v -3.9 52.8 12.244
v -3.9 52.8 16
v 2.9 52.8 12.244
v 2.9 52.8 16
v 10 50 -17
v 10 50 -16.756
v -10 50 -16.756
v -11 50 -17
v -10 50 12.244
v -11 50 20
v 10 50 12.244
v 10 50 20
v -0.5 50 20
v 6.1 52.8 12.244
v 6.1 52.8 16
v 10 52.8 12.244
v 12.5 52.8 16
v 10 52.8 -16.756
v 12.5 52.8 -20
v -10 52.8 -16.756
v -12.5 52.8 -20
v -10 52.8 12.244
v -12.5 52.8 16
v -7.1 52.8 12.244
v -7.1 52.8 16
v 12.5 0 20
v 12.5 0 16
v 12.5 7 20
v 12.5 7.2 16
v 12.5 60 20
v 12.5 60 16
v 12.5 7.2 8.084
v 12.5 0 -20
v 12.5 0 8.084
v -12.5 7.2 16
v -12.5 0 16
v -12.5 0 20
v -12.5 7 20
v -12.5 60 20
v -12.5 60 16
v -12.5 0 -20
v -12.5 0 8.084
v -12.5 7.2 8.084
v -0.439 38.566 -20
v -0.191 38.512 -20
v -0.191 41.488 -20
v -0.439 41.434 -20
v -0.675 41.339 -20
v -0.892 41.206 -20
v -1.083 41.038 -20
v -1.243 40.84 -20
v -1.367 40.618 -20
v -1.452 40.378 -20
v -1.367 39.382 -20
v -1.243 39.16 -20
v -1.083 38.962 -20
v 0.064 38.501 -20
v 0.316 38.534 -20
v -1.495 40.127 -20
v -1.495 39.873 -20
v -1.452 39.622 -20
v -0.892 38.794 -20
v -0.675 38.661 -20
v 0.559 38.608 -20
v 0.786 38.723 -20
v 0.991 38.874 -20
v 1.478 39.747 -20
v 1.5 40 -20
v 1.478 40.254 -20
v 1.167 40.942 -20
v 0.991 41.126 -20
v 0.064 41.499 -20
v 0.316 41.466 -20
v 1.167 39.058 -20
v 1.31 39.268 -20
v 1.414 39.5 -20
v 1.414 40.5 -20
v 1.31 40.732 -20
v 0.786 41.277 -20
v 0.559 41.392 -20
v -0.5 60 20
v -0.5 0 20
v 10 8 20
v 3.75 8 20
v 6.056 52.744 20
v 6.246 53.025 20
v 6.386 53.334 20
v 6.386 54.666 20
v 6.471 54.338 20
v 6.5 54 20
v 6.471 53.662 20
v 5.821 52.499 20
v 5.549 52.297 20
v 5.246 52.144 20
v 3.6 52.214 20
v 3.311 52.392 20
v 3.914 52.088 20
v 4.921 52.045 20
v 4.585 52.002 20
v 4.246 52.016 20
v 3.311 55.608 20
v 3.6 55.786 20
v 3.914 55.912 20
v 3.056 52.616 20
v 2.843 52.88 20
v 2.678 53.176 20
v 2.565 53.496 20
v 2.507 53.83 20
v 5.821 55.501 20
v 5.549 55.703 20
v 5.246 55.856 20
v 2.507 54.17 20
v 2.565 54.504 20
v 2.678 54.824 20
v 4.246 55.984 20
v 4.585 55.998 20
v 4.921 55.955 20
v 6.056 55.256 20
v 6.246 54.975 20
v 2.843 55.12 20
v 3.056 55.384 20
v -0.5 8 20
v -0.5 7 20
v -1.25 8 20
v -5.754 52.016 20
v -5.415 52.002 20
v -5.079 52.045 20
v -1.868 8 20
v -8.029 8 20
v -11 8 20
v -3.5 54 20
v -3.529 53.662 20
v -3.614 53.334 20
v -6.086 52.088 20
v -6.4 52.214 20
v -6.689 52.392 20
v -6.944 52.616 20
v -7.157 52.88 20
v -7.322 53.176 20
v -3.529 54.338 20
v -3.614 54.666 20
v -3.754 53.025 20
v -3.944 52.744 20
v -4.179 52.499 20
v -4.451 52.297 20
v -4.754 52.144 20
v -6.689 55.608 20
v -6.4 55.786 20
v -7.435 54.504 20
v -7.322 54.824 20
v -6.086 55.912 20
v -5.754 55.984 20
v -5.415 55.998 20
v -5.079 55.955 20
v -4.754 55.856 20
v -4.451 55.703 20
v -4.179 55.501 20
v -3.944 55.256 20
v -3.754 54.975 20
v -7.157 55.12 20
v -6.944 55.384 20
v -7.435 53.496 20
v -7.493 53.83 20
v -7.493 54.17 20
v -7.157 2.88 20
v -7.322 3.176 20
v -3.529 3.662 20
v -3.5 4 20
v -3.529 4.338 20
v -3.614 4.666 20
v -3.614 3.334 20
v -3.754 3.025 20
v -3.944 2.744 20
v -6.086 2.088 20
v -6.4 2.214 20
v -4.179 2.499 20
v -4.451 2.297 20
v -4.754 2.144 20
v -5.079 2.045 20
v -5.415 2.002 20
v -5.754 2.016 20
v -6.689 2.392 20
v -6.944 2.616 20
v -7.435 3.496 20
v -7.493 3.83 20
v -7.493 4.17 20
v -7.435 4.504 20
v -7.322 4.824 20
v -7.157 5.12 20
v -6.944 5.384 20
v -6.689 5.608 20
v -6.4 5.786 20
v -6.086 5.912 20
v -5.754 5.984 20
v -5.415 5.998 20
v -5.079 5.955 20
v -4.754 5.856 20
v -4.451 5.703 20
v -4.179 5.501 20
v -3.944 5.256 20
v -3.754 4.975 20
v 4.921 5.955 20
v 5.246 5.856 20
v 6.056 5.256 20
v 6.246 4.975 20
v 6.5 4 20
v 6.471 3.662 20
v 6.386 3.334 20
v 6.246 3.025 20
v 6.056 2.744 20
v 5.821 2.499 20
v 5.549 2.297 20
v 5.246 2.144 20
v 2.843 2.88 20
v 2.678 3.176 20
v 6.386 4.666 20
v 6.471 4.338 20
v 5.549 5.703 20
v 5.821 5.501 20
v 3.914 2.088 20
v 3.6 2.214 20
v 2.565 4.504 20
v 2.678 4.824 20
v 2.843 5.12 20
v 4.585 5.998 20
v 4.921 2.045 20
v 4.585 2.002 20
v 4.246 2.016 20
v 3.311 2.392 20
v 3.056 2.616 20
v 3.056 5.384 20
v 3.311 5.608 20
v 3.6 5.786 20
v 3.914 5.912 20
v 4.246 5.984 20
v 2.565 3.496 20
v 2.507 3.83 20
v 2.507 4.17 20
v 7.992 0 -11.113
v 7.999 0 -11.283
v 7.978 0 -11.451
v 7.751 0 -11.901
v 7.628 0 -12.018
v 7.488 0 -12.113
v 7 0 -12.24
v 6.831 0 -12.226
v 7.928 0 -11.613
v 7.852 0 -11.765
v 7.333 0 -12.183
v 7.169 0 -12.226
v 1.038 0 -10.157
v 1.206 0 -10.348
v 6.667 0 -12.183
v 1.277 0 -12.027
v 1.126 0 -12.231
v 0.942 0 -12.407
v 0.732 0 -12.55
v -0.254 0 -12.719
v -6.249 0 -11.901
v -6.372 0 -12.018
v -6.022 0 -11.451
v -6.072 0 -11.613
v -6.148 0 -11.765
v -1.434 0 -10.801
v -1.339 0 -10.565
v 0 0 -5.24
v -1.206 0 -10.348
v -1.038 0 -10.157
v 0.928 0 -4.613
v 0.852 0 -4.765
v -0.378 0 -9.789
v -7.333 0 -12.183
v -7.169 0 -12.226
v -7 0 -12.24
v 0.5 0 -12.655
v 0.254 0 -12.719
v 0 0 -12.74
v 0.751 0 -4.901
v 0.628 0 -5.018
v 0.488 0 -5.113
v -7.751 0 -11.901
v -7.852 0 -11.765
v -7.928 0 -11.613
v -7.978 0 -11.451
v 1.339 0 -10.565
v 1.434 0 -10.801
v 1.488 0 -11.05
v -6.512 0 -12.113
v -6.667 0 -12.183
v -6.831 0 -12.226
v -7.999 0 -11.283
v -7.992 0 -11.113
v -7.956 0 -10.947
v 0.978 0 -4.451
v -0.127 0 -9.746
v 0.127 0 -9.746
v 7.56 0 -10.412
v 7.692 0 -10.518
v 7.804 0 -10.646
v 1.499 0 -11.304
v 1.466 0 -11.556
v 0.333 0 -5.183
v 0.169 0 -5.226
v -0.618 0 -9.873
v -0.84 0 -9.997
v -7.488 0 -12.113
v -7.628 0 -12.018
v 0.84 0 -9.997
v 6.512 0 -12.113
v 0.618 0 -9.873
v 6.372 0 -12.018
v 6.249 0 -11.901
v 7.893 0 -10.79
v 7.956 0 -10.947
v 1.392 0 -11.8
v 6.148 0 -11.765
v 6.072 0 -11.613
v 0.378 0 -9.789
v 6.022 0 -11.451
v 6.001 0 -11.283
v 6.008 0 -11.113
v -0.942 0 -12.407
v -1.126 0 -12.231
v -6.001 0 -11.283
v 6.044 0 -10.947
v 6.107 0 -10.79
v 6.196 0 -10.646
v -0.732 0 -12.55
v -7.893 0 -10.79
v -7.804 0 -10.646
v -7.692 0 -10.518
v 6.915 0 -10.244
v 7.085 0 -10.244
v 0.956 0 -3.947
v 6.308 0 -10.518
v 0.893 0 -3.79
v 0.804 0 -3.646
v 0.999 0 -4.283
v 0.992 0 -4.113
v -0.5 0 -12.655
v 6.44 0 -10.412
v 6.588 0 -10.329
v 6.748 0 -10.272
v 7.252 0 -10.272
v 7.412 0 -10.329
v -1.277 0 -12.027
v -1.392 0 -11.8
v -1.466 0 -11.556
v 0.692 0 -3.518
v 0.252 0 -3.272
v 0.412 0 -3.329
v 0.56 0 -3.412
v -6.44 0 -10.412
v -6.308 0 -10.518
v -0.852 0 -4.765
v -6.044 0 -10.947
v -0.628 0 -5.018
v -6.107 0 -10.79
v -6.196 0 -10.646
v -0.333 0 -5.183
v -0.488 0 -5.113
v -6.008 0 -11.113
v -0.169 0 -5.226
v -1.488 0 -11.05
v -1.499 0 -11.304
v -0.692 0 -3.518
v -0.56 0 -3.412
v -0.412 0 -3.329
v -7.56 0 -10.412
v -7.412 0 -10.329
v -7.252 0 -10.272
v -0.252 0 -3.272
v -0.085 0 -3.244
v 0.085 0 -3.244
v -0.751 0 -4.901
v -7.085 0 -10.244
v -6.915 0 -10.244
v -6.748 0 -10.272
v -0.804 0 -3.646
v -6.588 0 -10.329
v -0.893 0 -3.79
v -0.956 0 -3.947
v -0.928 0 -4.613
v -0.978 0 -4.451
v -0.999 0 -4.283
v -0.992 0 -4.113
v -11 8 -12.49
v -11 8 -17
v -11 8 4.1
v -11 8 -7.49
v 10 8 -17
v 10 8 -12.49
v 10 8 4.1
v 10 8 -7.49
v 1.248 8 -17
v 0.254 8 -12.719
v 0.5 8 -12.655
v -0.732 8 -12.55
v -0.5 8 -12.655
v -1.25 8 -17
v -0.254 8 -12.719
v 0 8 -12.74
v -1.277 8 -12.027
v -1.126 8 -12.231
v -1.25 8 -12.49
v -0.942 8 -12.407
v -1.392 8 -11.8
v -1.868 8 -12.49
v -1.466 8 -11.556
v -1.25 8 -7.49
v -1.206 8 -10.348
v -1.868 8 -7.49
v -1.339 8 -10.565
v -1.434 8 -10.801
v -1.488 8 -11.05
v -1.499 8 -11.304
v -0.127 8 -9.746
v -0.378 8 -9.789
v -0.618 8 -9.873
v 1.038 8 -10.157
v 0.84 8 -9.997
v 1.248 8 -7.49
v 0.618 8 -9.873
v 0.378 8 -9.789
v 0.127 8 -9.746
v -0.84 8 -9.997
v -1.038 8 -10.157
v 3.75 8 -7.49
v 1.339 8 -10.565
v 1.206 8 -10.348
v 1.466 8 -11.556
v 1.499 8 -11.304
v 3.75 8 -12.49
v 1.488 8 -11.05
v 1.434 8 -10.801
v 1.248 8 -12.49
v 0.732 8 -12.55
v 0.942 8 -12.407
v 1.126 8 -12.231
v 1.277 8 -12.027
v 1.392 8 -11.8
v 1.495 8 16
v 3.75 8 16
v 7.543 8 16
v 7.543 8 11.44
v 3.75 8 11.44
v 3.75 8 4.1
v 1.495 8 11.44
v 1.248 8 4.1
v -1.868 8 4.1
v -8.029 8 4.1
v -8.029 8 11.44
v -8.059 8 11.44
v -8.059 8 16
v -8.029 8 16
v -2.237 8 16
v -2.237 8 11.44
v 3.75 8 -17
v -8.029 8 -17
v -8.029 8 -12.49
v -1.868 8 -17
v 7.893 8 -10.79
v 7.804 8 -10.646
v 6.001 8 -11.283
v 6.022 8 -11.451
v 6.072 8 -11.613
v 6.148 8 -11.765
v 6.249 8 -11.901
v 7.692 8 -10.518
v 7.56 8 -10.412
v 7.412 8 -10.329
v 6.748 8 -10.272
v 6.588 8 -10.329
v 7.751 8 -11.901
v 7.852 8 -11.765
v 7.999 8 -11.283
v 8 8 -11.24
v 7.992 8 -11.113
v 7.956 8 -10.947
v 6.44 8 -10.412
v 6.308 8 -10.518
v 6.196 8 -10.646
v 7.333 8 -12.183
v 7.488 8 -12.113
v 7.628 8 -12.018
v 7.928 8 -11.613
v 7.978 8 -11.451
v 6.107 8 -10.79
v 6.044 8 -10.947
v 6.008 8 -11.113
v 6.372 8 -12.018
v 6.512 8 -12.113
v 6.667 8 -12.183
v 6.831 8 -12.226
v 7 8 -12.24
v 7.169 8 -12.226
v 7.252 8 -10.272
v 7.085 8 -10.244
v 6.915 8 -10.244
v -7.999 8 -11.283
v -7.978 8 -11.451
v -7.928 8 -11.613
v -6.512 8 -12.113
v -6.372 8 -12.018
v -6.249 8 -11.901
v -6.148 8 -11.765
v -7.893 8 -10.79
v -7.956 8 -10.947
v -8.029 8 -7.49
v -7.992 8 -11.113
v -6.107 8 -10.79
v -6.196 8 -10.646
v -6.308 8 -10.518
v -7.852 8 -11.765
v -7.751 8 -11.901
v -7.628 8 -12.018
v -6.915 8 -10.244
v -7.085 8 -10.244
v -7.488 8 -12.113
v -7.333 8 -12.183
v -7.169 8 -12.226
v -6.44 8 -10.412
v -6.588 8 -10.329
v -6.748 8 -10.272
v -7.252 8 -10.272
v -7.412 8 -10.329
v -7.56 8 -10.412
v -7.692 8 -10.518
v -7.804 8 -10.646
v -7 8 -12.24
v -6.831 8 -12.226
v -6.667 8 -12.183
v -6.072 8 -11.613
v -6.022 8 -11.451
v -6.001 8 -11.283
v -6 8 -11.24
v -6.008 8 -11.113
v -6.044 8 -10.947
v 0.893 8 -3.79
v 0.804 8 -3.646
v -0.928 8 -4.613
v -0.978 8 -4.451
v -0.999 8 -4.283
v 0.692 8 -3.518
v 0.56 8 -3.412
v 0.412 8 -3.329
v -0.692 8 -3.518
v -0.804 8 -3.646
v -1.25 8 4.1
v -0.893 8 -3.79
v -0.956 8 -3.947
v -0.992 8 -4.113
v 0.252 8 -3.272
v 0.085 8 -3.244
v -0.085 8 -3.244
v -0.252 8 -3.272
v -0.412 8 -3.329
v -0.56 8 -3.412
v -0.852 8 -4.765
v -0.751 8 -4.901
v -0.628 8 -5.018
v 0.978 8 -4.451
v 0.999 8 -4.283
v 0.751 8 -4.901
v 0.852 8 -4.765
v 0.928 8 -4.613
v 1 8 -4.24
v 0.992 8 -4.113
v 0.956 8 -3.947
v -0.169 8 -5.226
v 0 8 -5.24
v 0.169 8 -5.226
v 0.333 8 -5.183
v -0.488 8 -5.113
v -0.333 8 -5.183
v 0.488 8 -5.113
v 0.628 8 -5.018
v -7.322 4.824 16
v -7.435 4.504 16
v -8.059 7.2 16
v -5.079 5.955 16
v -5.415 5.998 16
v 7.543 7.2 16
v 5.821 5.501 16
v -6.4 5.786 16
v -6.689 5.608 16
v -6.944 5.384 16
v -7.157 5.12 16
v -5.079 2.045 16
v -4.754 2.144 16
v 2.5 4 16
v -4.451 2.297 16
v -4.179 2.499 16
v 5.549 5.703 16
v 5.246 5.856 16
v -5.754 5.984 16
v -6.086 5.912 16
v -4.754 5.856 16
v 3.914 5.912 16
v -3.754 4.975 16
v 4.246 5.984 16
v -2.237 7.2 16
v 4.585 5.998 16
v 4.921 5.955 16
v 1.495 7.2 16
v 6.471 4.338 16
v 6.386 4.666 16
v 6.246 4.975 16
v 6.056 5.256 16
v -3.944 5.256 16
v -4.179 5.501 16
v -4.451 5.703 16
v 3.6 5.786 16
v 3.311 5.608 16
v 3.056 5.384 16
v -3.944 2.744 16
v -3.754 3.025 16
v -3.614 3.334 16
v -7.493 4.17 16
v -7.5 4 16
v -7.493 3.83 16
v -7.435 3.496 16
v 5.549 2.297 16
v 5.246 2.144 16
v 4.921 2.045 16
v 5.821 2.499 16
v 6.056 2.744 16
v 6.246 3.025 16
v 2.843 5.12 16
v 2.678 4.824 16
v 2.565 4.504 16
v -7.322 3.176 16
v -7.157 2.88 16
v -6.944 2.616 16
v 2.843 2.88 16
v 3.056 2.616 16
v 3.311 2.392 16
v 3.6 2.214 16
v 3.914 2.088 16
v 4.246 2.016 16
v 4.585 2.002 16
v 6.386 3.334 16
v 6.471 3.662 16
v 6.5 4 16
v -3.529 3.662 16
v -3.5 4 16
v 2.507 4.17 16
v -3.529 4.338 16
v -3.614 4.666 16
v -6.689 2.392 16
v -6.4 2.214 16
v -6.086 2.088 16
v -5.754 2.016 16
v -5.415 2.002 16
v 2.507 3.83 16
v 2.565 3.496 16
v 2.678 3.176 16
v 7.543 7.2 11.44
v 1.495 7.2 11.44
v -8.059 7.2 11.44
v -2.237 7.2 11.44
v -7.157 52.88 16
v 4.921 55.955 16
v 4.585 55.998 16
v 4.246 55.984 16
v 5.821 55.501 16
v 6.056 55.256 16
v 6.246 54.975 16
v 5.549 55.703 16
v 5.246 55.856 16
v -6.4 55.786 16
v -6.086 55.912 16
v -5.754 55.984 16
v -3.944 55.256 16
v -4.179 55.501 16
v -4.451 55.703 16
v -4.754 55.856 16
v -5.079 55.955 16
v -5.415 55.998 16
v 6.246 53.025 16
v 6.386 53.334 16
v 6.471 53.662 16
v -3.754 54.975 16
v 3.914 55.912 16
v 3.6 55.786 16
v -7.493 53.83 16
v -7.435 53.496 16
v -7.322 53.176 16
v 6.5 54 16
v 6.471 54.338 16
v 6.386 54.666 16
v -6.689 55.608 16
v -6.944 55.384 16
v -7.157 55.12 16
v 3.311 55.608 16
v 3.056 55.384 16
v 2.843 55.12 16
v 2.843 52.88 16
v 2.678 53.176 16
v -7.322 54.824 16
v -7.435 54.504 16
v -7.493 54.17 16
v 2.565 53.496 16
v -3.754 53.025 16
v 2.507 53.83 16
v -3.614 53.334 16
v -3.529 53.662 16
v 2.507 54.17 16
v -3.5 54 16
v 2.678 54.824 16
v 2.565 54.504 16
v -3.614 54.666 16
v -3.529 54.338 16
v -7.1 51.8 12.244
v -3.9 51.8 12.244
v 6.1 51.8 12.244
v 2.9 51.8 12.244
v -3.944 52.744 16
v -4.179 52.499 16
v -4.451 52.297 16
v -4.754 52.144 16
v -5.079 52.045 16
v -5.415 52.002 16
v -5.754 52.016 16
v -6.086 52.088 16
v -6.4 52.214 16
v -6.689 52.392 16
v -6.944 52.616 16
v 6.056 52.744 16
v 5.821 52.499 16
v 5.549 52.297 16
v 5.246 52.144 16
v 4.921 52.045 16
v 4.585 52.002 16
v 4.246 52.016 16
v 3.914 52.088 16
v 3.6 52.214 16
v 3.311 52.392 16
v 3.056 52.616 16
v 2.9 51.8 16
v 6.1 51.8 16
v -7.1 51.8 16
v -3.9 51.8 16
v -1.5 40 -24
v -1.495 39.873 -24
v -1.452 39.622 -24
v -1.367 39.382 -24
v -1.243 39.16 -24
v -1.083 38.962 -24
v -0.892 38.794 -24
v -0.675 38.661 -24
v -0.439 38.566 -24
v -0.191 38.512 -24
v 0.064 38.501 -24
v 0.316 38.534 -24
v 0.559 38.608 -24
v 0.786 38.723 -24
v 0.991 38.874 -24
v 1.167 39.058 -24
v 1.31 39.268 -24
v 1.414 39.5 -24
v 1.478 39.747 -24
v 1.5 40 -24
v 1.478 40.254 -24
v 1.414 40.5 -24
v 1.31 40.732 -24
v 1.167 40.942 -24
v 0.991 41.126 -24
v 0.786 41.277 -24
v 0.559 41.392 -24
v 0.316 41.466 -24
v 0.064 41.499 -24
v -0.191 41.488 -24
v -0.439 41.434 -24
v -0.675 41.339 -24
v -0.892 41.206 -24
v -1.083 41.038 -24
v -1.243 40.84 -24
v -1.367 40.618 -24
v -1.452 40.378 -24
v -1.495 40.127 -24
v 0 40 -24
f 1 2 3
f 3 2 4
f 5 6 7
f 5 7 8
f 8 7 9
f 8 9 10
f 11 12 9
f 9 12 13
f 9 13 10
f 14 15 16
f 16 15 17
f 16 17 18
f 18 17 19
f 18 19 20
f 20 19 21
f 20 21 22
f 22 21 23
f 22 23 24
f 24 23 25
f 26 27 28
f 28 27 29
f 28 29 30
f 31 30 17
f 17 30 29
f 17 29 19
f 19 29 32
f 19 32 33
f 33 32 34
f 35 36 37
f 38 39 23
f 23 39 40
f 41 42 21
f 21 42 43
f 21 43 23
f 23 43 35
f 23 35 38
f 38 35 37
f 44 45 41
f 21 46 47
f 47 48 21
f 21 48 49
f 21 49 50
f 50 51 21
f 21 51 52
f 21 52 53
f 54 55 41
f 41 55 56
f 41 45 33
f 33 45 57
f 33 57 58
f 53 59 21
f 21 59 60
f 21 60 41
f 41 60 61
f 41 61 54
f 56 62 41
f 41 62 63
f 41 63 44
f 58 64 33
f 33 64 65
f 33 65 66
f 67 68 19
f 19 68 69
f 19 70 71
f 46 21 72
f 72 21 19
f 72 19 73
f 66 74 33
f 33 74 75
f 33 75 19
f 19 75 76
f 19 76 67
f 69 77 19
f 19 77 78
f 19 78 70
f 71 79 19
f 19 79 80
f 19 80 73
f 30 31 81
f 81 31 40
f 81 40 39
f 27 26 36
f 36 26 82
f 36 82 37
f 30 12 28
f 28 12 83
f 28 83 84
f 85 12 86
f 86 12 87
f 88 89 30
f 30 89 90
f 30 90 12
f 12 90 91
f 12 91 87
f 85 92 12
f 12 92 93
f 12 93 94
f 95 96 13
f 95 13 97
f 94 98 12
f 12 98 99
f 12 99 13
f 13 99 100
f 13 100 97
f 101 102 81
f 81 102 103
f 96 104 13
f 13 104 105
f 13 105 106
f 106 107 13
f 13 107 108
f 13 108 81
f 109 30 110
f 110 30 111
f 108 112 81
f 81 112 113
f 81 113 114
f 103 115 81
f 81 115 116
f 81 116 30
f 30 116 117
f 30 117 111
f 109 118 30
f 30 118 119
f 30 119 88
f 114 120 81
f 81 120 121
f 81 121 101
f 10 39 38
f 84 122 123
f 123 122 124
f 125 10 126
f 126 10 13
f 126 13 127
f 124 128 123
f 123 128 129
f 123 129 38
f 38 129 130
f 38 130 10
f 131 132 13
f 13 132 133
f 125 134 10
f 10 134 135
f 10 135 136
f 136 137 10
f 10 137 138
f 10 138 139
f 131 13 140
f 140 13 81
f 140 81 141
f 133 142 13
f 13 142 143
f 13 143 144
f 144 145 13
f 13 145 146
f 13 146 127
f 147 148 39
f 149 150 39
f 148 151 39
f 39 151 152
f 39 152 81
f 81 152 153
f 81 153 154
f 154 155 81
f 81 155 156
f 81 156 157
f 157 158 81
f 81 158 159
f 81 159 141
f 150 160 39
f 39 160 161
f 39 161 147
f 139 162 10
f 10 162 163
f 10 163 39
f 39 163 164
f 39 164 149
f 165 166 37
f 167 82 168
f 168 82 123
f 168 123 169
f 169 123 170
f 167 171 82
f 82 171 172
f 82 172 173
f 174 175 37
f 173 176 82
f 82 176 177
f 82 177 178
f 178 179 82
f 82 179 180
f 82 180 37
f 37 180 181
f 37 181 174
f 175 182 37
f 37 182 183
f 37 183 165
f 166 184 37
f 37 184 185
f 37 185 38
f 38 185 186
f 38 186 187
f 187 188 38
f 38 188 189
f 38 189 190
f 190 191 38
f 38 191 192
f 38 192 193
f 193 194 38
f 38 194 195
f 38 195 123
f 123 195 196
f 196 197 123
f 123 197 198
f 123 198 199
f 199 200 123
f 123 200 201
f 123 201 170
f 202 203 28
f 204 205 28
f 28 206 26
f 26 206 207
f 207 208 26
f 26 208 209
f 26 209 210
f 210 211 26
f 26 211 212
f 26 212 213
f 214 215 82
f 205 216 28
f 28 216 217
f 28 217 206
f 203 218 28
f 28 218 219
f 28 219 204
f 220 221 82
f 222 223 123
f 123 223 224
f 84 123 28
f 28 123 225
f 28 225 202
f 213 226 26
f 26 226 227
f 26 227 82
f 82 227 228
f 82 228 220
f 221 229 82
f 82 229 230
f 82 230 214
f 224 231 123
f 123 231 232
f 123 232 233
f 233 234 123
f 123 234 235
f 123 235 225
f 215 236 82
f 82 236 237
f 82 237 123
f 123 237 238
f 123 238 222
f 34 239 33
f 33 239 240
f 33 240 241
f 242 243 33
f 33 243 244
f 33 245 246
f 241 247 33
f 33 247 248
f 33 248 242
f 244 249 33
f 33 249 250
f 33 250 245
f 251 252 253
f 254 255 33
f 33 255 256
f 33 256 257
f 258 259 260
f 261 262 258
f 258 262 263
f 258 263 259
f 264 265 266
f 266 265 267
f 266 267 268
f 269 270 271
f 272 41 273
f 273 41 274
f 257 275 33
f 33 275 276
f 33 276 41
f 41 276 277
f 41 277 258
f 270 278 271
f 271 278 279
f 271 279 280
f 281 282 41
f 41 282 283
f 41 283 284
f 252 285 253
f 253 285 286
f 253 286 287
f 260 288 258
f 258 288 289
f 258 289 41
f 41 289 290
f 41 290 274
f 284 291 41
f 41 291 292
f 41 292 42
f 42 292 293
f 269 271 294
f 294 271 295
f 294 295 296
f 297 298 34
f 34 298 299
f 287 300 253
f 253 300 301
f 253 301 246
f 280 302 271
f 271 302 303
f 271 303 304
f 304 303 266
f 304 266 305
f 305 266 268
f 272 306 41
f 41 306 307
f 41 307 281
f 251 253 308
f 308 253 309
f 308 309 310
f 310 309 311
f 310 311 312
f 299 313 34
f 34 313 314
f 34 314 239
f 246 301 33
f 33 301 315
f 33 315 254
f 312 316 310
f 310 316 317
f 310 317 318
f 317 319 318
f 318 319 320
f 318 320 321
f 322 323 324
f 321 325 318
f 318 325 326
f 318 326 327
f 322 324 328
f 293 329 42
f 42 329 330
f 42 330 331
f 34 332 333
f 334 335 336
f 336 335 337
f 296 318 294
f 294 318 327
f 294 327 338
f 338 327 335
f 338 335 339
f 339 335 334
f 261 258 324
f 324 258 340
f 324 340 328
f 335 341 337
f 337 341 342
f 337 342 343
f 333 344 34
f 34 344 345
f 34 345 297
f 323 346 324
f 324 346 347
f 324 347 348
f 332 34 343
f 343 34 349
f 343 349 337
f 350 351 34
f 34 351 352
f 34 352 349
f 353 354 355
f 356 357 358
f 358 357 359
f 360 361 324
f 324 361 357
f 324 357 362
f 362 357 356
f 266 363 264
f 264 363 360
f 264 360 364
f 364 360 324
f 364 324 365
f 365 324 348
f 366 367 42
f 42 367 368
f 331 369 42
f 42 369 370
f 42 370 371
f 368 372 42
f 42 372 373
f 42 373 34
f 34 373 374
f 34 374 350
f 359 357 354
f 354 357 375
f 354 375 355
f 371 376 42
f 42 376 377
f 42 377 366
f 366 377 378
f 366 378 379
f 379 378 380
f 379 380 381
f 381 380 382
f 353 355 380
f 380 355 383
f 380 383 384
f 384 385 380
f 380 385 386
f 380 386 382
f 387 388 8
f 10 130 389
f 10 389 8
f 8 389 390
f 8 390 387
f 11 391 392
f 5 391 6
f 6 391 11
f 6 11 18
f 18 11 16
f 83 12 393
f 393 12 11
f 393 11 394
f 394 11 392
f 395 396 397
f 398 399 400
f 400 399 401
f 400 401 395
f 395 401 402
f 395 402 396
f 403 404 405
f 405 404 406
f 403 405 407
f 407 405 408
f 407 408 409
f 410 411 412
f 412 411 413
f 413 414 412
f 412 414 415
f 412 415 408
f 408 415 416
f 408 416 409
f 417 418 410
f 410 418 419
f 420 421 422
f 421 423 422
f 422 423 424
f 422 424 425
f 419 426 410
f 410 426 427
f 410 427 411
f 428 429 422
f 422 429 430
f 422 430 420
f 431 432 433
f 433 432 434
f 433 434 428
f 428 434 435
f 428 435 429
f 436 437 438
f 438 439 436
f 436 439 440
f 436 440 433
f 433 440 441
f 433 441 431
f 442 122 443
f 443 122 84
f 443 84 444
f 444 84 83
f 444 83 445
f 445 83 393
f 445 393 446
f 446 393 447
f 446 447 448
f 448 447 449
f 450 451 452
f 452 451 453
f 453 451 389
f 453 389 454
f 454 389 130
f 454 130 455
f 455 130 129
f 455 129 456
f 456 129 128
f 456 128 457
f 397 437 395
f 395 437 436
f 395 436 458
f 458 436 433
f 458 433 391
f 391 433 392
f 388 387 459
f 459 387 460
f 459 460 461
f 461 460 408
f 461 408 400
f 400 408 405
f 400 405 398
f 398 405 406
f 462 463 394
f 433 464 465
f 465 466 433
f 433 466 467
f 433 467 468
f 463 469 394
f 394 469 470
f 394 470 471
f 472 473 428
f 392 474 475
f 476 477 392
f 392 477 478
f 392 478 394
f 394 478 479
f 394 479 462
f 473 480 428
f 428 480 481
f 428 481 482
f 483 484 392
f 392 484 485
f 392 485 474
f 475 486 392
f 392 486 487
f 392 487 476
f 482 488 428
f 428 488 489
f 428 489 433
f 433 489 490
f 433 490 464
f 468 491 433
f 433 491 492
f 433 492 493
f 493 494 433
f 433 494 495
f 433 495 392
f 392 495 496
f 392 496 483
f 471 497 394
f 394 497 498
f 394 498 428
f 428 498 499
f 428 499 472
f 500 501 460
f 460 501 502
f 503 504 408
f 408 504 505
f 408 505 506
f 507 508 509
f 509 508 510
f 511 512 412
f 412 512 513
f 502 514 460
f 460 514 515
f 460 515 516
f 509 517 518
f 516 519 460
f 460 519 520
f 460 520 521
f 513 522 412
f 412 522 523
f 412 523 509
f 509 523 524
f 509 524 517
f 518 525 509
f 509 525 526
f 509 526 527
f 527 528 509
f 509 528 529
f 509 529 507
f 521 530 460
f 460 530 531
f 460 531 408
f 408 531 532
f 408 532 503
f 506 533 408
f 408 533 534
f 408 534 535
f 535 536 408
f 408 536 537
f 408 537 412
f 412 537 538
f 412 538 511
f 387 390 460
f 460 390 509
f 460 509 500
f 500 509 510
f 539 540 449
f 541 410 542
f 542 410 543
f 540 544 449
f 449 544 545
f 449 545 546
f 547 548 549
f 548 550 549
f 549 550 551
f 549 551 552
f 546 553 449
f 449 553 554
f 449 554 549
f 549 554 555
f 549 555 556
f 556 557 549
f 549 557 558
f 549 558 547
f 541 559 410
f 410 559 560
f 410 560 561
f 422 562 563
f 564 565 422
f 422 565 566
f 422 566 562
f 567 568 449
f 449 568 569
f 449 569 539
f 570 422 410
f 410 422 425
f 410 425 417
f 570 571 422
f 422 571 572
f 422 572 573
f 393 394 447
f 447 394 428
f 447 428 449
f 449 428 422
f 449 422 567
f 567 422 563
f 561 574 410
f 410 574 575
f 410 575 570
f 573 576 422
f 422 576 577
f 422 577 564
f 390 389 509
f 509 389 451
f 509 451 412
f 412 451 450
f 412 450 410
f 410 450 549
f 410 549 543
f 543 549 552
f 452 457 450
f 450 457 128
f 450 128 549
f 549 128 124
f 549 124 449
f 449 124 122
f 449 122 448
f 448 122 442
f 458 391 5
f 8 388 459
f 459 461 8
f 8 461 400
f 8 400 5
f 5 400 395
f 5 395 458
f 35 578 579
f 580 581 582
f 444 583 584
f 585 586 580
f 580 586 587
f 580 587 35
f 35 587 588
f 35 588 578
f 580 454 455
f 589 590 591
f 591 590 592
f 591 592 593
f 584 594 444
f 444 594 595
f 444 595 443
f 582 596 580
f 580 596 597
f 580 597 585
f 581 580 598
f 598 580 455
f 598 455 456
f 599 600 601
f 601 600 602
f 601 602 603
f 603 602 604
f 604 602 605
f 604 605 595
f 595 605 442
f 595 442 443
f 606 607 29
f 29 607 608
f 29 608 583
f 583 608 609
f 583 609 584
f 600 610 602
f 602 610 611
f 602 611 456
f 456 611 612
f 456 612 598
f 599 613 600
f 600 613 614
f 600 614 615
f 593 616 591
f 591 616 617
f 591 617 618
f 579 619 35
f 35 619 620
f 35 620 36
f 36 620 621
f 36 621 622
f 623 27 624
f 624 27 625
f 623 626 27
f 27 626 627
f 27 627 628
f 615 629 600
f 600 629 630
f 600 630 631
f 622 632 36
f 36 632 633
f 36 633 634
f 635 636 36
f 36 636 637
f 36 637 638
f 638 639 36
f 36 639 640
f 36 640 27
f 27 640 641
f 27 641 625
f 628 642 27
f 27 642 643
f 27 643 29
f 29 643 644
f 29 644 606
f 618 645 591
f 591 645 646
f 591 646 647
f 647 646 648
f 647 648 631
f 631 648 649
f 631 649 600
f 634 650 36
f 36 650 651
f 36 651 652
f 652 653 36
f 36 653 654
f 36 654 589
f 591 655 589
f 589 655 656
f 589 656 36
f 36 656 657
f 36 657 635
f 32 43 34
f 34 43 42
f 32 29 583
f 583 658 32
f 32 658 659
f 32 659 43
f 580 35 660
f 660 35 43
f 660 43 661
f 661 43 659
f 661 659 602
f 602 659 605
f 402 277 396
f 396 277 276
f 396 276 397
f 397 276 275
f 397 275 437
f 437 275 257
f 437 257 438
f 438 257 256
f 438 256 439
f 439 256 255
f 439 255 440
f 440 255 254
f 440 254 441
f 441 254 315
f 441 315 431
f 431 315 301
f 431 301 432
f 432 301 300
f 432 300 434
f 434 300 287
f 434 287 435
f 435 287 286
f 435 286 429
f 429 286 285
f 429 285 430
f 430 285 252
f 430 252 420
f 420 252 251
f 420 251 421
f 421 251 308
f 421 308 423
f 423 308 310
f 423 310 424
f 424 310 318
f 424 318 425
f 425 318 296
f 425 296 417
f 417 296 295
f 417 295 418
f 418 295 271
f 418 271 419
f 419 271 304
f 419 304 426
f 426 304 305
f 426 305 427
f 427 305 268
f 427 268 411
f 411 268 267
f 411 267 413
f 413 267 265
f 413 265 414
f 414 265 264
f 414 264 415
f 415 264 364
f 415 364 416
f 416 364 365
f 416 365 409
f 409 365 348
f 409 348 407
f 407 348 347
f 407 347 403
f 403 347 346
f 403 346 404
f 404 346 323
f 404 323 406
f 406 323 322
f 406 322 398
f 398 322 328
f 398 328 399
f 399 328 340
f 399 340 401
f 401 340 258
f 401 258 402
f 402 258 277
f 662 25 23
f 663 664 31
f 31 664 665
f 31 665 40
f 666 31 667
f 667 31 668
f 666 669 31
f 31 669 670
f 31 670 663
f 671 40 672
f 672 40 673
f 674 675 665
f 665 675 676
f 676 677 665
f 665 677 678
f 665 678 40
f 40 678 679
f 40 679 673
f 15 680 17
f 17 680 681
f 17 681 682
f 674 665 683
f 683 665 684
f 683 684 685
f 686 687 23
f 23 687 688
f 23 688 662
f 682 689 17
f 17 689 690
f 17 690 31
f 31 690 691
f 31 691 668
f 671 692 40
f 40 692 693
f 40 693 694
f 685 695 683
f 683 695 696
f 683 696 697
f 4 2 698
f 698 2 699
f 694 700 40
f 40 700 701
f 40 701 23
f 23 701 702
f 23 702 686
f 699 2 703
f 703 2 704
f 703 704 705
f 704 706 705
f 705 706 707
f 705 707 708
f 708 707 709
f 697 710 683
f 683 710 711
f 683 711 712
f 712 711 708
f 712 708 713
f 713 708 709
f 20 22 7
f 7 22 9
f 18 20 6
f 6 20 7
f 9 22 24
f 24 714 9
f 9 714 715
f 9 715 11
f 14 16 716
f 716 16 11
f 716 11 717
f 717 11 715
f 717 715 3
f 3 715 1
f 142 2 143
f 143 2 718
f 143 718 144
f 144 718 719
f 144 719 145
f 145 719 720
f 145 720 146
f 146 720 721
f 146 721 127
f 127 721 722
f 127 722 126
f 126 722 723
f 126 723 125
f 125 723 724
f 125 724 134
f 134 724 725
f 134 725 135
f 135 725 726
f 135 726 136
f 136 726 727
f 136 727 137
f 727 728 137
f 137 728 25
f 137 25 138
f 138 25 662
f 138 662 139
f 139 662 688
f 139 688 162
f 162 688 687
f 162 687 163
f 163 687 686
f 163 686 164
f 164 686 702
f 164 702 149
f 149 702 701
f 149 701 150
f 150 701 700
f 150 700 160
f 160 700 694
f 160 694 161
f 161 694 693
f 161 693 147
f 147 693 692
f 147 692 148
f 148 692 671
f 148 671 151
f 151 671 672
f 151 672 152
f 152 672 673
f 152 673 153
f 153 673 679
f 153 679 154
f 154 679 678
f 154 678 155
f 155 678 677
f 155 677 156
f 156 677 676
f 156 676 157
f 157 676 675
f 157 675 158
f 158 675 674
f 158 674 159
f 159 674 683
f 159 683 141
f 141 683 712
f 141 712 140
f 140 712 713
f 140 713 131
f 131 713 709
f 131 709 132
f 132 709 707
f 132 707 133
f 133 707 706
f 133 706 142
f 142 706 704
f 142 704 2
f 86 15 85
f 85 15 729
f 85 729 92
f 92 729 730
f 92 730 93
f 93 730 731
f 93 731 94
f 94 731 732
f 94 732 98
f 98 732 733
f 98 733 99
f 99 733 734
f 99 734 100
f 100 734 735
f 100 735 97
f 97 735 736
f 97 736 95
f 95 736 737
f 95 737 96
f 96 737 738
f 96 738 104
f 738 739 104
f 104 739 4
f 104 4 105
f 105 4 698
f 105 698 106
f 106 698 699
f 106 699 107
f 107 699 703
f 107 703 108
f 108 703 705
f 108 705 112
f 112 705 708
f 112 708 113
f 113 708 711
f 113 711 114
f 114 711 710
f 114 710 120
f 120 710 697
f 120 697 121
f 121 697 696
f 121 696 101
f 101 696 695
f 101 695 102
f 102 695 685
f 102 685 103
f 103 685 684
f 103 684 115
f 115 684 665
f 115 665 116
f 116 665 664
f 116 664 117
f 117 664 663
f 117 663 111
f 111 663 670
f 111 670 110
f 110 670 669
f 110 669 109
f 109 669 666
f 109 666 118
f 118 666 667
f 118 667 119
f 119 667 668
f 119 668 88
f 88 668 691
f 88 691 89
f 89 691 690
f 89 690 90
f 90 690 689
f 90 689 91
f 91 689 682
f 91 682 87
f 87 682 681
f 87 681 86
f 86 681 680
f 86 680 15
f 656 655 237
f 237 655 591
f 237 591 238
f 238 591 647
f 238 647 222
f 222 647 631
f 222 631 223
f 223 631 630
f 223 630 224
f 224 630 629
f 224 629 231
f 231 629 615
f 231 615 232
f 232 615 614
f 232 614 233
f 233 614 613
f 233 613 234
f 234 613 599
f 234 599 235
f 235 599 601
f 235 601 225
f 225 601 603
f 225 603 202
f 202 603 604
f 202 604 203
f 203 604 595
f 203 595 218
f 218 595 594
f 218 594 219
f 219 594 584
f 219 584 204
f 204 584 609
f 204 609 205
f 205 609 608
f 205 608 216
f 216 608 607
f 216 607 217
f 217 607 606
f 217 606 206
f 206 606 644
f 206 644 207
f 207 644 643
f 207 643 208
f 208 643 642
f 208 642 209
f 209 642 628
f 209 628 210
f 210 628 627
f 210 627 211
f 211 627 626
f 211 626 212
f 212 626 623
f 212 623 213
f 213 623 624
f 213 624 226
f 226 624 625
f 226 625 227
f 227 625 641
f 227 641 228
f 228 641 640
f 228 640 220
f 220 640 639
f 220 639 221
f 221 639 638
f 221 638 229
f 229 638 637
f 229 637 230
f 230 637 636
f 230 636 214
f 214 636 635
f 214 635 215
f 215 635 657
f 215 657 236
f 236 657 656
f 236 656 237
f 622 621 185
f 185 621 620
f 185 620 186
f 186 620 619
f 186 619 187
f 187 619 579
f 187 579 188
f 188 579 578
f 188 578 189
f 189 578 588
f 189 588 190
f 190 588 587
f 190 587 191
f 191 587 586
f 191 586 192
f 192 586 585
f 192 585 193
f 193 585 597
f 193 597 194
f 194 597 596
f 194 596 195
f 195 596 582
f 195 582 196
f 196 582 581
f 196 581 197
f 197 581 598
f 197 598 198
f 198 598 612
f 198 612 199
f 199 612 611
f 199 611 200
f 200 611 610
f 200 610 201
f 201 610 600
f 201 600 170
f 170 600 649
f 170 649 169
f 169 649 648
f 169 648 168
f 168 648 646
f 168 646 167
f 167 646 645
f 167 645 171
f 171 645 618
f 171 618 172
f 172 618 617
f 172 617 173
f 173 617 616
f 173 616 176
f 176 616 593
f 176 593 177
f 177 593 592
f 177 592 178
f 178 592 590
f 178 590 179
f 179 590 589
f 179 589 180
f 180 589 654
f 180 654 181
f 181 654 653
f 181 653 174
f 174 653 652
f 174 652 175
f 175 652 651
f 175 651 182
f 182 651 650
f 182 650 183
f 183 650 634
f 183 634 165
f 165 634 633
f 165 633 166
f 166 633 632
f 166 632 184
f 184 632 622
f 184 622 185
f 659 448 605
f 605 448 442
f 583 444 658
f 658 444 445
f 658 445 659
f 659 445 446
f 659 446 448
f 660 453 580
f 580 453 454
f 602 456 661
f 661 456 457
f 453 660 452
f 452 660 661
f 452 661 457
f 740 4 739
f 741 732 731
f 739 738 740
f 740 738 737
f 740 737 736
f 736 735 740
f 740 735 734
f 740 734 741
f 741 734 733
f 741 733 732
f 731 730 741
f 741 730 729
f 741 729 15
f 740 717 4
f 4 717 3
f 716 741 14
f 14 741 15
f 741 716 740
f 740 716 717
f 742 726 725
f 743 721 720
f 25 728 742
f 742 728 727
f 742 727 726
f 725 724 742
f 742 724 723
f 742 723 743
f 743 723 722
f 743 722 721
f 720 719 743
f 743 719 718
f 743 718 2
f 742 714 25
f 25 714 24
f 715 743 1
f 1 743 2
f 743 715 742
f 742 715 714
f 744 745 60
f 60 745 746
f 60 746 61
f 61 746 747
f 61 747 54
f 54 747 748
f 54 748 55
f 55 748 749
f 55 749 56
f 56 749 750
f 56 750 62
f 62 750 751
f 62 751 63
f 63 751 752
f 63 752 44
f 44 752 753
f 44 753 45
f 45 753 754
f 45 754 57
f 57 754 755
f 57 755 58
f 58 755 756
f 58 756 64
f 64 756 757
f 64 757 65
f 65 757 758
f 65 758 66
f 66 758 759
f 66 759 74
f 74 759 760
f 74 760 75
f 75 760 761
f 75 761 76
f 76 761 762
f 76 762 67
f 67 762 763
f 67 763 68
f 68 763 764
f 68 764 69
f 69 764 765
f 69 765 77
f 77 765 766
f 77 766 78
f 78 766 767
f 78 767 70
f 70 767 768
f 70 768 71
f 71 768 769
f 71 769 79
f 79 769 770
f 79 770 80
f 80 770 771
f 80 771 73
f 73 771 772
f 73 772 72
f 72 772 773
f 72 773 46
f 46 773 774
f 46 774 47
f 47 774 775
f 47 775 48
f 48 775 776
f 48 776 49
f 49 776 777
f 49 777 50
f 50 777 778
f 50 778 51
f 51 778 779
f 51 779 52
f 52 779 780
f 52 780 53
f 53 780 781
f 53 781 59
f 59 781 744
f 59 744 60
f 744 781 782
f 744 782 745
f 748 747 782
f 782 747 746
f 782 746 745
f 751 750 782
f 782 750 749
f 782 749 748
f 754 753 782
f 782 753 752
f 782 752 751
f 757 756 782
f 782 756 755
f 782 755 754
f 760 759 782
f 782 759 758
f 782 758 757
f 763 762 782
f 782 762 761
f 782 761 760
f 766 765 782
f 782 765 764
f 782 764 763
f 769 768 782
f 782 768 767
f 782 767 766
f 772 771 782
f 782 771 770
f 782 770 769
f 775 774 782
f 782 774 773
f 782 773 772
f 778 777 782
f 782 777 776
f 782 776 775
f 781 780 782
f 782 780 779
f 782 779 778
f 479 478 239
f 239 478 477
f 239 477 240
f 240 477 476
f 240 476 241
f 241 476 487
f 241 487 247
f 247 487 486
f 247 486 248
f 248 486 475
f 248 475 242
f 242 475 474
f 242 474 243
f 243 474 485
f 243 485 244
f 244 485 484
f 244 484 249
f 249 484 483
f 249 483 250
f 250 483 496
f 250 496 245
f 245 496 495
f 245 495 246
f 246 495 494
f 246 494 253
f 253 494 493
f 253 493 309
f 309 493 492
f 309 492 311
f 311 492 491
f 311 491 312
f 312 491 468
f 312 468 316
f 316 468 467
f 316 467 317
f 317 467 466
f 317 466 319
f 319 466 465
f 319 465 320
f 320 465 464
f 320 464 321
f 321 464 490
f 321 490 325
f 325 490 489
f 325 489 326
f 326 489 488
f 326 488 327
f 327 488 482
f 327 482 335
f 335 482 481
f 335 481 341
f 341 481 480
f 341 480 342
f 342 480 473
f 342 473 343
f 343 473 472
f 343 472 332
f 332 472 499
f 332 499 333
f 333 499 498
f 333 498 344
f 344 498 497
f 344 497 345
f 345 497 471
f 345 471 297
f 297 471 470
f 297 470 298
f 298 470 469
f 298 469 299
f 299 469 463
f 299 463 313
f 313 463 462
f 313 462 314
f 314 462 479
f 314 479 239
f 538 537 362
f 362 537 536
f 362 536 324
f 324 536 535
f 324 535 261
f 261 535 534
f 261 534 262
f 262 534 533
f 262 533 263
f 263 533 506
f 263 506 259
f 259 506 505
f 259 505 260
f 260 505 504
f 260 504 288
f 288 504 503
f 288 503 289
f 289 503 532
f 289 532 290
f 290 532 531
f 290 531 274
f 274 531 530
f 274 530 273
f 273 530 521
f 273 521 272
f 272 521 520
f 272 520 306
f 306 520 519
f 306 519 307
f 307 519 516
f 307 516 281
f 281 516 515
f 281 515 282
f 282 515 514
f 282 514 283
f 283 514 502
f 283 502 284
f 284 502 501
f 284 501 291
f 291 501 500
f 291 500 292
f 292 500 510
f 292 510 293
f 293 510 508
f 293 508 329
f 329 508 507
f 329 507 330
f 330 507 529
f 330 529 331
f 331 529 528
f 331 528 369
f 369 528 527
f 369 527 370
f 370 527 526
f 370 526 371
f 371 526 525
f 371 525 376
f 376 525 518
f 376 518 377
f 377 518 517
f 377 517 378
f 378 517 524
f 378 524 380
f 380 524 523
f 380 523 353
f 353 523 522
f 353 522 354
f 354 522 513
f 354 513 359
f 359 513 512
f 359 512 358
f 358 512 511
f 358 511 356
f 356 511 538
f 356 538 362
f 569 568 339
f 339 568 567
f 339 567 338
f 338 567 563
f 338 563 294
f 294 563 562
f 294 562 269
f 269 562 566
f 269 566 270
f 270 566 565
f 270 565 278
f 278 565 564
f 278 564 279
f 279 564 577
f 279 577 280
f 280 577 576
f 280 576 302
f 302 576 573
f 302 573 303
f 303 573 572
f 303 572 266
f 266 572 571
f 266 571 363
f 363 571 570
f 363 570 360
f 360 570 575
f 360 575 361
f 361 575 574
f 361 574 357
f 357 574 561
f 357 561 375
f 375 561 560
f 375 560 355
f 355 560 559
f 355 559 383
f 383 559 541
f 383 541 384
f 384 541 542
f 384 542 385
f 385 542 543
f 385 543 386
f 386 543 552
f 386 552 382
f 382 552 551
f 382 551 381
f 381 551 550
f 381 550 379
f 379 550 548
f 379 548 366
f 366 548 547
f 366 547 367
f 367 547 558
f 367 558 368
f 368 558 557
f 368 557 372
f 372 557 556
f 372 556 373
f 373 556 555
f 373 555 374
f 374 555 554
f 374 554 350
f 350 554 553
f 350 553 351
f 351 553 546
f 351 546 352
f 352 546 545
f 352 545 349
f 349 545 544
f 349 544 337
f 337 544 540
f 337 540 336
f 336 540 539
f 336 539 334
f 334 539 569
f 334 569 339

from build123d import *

# Parameters (mm, degrees)
SKETCH2_W           = 25
SKETCH2_H           = 40
BOSS_EXTRUDE3_DEPTH = 60
SKETCH13_W          = 21
SKETCH13_H          = 42
CUT_EXTRUDE5_DEPTH  = 37
SKETCH15_W          = 25
SKETCH15_H          = 7.915590507
CUT_EXTRUDE7_DEPTH  = 7.2
SKETCH16_R          = 1.5
CUT_EXTRUDE8_DEPTH  = 8
SKETCH17_W          = 25
SKETCH17_H          = 36
CUT_EXTRUDE9_DEPTH  = 7.2
SKETCH19_W          = 20
SKETCH19_H          = 29
CUT_EXTRUDE10_DEPTH = 4
SKETCH23_R          = 2
CUT_EXTRUDE12_DEPTH = 10
SKETCH24_W          = 5.82179869
SKETCH24_H          = 4.560057011
SKETCH24_W_2        = 6.048044386
CUT_EXTRUDE14_DEPTH = 1
SKETCH25_W          = 3.2
SKETCH25_H          = 3.755693487
CUT_EXTRUDE15_DEPTH = 1
SKETCH28_R          = 1.5
BOSS_EXTRUDE4_DEPTH = 4
SKETCH29_R          = 1
CUT_EXTRUDE16_DEPTH = 10


with BuildPart() as part:
    # Sketch2 → Boss-Extrude3 (new body)
    with BuildSketch(Plane(origin=(0, 0, 0), x_dir=(1, 0, 0), z_dir=(0, 1, 0))):
        Rectangle(SKETCH2_W, SKETCH2_H)
    extrude(amount=BOSS_EXTRUDE3_DEPTH)

    # Sketch13 → Cut-Extrude5 (cut)
    with BuildSketch(Plane.XY.offset(20)):
        with Locations((-0.5, 29)):
            Rectangle(SKETCH13_W, SKETCH13_H)
    extrude(amount=-CUT_EXTRUDE5_DEPTH, mode=Mode.SUBTRACT)

    # Sketch15 → Cut-Extrude7 (cut)
    with BuildSketch(Plane.XZ):
        with Locations((0, 12.042204747)):
            Rectangle(SKETCH15_W, SKETCH15_H)
    extrude(amount=-CUT_EXTRUDE7_DEPTH, mode=Mode.SUBTRACT)

    # Sketch16 → Cut-Extrude8 (cut)
    with BuildSketch(Plane.XZ):
        with Locations(Location((0, -11.240217596, 0), (0, 0, 270))):
            Circle(SKETCH16_R)
    extrude(amount=-CUT_EXTRUDE8_DEPTH, mode=Mode.SUBTRACT)

    # Sketch17 → Cut-Extrude9 (cut)
    with BuildSketch(Plane(origin=(0, 60, 0), x_dir=(1, 0, 0), z_dir=(0, 1, 0))):
        with Locations((0, 2)):
            Rectangle(SKETCH17_W, SKETCH17_H)
    extrude(amount=-CUT_EXTRUDE9_DEPTH, mode=Mode.SUBTRACT)

    # Sketch19 → Cut-Extrude10 (cut)
    with BuildSketch(Plane(origin=(0, 52.8, 0), x_dir=(1, 0, 0), z_dir=(0, 1, 0))):
        with Locations((0, 2.255693487)):
            Rectangle(SKETCH19_W, SKETCH19_H)
    extrude(amount=-CUT_EXTRUDE10_DEPTH, mode=Mode.SUBTRACT)

    # Sketch23 → Cut-Extrude12 (cut)
    with BuildSketch(Plane.XY.offset(20)):
        with Locations((-5.5, 54)):
            Circle(SKETCH23_R)
        with Locations((4.5, 54)):
            Circle(SKETCH23_R)
        with Locations((-5.5, 4)):
            Circle(SKETCH23_R)
        with Locations((4.5, 4)):
            Circle(SKETCH23_R)
    extrude(amount=-CUT_EXTRUDE12_DEPTH, mode=Mode.SUBTRACT)

    # Sketch24 → Cut-Extrude14 (cut)
    with BuildSketch(Plane.XZ.offset(-7.2)):
        with Locations((-5.147829388, 13.719971495)):
            Rectangle(SKETCH24_W, SKETCH24_H)
        with Locations((4.519232113, 13.719971495)):
            Rectangle(SKETCH24_W_2, SKETCH24_H)
    extrude(amount=-CUT_EXTRUDE14_DEPTH, mode=Mode.SUBTRACT)

    # Sketch25 → Cut-Extrude15 (cut)
    with BuildSketch(Plane(origin=(0, 52.8, 0), x_dir=(1, 0, 0), z_dir=(0, 1, 0))):
        with Locations((-5.5, -14.122153257)):
            Rectangle(SKETCH25_W, SKETCH25_H)
        with Locations((4.5, -14.122153257)):
            Rectangle(SKETCH25_W, SKETCH25_H)
    extrude(amount=-CUT_EXTRUDE15_DEPTH, mode=Mode.SUBTRACT)

    # Sketch28 → Boss-Extrude4 (add)
    with BuildSketch(Plane(origin=(0, 0, -20), x_dir=(-1, 0, 0), z_dir=(0, 0, -1))):
        with Locations(Location((0, 40, 0), (0, 0, 180))):
            Circle(SKETCH28_R)
    extrude(amount=BOSS_EXTRUDE4_DEPTH)

    # Sketch29 → Cut-Extrude16 (cut)
    with BuildSketch(Plane.XZ):
        with Locations(Location((0, -4.240217596, 0), (0, 0, 270))):
            Circle(SKETCH29_R)
        with Locations(Location((-7, -11.240217596, 0), (0, 0, 270))):
            Circle(SKETCH29_R)
        with Locations(Location((7, -11.240217596, 0), (0, 0, 270))):
            Circle(SKETCH29_R)
    extrude(amount=-CUT_EXTRUDE16_DEPTH, mode=Mode.SUBTRACT)


solid = part.part
